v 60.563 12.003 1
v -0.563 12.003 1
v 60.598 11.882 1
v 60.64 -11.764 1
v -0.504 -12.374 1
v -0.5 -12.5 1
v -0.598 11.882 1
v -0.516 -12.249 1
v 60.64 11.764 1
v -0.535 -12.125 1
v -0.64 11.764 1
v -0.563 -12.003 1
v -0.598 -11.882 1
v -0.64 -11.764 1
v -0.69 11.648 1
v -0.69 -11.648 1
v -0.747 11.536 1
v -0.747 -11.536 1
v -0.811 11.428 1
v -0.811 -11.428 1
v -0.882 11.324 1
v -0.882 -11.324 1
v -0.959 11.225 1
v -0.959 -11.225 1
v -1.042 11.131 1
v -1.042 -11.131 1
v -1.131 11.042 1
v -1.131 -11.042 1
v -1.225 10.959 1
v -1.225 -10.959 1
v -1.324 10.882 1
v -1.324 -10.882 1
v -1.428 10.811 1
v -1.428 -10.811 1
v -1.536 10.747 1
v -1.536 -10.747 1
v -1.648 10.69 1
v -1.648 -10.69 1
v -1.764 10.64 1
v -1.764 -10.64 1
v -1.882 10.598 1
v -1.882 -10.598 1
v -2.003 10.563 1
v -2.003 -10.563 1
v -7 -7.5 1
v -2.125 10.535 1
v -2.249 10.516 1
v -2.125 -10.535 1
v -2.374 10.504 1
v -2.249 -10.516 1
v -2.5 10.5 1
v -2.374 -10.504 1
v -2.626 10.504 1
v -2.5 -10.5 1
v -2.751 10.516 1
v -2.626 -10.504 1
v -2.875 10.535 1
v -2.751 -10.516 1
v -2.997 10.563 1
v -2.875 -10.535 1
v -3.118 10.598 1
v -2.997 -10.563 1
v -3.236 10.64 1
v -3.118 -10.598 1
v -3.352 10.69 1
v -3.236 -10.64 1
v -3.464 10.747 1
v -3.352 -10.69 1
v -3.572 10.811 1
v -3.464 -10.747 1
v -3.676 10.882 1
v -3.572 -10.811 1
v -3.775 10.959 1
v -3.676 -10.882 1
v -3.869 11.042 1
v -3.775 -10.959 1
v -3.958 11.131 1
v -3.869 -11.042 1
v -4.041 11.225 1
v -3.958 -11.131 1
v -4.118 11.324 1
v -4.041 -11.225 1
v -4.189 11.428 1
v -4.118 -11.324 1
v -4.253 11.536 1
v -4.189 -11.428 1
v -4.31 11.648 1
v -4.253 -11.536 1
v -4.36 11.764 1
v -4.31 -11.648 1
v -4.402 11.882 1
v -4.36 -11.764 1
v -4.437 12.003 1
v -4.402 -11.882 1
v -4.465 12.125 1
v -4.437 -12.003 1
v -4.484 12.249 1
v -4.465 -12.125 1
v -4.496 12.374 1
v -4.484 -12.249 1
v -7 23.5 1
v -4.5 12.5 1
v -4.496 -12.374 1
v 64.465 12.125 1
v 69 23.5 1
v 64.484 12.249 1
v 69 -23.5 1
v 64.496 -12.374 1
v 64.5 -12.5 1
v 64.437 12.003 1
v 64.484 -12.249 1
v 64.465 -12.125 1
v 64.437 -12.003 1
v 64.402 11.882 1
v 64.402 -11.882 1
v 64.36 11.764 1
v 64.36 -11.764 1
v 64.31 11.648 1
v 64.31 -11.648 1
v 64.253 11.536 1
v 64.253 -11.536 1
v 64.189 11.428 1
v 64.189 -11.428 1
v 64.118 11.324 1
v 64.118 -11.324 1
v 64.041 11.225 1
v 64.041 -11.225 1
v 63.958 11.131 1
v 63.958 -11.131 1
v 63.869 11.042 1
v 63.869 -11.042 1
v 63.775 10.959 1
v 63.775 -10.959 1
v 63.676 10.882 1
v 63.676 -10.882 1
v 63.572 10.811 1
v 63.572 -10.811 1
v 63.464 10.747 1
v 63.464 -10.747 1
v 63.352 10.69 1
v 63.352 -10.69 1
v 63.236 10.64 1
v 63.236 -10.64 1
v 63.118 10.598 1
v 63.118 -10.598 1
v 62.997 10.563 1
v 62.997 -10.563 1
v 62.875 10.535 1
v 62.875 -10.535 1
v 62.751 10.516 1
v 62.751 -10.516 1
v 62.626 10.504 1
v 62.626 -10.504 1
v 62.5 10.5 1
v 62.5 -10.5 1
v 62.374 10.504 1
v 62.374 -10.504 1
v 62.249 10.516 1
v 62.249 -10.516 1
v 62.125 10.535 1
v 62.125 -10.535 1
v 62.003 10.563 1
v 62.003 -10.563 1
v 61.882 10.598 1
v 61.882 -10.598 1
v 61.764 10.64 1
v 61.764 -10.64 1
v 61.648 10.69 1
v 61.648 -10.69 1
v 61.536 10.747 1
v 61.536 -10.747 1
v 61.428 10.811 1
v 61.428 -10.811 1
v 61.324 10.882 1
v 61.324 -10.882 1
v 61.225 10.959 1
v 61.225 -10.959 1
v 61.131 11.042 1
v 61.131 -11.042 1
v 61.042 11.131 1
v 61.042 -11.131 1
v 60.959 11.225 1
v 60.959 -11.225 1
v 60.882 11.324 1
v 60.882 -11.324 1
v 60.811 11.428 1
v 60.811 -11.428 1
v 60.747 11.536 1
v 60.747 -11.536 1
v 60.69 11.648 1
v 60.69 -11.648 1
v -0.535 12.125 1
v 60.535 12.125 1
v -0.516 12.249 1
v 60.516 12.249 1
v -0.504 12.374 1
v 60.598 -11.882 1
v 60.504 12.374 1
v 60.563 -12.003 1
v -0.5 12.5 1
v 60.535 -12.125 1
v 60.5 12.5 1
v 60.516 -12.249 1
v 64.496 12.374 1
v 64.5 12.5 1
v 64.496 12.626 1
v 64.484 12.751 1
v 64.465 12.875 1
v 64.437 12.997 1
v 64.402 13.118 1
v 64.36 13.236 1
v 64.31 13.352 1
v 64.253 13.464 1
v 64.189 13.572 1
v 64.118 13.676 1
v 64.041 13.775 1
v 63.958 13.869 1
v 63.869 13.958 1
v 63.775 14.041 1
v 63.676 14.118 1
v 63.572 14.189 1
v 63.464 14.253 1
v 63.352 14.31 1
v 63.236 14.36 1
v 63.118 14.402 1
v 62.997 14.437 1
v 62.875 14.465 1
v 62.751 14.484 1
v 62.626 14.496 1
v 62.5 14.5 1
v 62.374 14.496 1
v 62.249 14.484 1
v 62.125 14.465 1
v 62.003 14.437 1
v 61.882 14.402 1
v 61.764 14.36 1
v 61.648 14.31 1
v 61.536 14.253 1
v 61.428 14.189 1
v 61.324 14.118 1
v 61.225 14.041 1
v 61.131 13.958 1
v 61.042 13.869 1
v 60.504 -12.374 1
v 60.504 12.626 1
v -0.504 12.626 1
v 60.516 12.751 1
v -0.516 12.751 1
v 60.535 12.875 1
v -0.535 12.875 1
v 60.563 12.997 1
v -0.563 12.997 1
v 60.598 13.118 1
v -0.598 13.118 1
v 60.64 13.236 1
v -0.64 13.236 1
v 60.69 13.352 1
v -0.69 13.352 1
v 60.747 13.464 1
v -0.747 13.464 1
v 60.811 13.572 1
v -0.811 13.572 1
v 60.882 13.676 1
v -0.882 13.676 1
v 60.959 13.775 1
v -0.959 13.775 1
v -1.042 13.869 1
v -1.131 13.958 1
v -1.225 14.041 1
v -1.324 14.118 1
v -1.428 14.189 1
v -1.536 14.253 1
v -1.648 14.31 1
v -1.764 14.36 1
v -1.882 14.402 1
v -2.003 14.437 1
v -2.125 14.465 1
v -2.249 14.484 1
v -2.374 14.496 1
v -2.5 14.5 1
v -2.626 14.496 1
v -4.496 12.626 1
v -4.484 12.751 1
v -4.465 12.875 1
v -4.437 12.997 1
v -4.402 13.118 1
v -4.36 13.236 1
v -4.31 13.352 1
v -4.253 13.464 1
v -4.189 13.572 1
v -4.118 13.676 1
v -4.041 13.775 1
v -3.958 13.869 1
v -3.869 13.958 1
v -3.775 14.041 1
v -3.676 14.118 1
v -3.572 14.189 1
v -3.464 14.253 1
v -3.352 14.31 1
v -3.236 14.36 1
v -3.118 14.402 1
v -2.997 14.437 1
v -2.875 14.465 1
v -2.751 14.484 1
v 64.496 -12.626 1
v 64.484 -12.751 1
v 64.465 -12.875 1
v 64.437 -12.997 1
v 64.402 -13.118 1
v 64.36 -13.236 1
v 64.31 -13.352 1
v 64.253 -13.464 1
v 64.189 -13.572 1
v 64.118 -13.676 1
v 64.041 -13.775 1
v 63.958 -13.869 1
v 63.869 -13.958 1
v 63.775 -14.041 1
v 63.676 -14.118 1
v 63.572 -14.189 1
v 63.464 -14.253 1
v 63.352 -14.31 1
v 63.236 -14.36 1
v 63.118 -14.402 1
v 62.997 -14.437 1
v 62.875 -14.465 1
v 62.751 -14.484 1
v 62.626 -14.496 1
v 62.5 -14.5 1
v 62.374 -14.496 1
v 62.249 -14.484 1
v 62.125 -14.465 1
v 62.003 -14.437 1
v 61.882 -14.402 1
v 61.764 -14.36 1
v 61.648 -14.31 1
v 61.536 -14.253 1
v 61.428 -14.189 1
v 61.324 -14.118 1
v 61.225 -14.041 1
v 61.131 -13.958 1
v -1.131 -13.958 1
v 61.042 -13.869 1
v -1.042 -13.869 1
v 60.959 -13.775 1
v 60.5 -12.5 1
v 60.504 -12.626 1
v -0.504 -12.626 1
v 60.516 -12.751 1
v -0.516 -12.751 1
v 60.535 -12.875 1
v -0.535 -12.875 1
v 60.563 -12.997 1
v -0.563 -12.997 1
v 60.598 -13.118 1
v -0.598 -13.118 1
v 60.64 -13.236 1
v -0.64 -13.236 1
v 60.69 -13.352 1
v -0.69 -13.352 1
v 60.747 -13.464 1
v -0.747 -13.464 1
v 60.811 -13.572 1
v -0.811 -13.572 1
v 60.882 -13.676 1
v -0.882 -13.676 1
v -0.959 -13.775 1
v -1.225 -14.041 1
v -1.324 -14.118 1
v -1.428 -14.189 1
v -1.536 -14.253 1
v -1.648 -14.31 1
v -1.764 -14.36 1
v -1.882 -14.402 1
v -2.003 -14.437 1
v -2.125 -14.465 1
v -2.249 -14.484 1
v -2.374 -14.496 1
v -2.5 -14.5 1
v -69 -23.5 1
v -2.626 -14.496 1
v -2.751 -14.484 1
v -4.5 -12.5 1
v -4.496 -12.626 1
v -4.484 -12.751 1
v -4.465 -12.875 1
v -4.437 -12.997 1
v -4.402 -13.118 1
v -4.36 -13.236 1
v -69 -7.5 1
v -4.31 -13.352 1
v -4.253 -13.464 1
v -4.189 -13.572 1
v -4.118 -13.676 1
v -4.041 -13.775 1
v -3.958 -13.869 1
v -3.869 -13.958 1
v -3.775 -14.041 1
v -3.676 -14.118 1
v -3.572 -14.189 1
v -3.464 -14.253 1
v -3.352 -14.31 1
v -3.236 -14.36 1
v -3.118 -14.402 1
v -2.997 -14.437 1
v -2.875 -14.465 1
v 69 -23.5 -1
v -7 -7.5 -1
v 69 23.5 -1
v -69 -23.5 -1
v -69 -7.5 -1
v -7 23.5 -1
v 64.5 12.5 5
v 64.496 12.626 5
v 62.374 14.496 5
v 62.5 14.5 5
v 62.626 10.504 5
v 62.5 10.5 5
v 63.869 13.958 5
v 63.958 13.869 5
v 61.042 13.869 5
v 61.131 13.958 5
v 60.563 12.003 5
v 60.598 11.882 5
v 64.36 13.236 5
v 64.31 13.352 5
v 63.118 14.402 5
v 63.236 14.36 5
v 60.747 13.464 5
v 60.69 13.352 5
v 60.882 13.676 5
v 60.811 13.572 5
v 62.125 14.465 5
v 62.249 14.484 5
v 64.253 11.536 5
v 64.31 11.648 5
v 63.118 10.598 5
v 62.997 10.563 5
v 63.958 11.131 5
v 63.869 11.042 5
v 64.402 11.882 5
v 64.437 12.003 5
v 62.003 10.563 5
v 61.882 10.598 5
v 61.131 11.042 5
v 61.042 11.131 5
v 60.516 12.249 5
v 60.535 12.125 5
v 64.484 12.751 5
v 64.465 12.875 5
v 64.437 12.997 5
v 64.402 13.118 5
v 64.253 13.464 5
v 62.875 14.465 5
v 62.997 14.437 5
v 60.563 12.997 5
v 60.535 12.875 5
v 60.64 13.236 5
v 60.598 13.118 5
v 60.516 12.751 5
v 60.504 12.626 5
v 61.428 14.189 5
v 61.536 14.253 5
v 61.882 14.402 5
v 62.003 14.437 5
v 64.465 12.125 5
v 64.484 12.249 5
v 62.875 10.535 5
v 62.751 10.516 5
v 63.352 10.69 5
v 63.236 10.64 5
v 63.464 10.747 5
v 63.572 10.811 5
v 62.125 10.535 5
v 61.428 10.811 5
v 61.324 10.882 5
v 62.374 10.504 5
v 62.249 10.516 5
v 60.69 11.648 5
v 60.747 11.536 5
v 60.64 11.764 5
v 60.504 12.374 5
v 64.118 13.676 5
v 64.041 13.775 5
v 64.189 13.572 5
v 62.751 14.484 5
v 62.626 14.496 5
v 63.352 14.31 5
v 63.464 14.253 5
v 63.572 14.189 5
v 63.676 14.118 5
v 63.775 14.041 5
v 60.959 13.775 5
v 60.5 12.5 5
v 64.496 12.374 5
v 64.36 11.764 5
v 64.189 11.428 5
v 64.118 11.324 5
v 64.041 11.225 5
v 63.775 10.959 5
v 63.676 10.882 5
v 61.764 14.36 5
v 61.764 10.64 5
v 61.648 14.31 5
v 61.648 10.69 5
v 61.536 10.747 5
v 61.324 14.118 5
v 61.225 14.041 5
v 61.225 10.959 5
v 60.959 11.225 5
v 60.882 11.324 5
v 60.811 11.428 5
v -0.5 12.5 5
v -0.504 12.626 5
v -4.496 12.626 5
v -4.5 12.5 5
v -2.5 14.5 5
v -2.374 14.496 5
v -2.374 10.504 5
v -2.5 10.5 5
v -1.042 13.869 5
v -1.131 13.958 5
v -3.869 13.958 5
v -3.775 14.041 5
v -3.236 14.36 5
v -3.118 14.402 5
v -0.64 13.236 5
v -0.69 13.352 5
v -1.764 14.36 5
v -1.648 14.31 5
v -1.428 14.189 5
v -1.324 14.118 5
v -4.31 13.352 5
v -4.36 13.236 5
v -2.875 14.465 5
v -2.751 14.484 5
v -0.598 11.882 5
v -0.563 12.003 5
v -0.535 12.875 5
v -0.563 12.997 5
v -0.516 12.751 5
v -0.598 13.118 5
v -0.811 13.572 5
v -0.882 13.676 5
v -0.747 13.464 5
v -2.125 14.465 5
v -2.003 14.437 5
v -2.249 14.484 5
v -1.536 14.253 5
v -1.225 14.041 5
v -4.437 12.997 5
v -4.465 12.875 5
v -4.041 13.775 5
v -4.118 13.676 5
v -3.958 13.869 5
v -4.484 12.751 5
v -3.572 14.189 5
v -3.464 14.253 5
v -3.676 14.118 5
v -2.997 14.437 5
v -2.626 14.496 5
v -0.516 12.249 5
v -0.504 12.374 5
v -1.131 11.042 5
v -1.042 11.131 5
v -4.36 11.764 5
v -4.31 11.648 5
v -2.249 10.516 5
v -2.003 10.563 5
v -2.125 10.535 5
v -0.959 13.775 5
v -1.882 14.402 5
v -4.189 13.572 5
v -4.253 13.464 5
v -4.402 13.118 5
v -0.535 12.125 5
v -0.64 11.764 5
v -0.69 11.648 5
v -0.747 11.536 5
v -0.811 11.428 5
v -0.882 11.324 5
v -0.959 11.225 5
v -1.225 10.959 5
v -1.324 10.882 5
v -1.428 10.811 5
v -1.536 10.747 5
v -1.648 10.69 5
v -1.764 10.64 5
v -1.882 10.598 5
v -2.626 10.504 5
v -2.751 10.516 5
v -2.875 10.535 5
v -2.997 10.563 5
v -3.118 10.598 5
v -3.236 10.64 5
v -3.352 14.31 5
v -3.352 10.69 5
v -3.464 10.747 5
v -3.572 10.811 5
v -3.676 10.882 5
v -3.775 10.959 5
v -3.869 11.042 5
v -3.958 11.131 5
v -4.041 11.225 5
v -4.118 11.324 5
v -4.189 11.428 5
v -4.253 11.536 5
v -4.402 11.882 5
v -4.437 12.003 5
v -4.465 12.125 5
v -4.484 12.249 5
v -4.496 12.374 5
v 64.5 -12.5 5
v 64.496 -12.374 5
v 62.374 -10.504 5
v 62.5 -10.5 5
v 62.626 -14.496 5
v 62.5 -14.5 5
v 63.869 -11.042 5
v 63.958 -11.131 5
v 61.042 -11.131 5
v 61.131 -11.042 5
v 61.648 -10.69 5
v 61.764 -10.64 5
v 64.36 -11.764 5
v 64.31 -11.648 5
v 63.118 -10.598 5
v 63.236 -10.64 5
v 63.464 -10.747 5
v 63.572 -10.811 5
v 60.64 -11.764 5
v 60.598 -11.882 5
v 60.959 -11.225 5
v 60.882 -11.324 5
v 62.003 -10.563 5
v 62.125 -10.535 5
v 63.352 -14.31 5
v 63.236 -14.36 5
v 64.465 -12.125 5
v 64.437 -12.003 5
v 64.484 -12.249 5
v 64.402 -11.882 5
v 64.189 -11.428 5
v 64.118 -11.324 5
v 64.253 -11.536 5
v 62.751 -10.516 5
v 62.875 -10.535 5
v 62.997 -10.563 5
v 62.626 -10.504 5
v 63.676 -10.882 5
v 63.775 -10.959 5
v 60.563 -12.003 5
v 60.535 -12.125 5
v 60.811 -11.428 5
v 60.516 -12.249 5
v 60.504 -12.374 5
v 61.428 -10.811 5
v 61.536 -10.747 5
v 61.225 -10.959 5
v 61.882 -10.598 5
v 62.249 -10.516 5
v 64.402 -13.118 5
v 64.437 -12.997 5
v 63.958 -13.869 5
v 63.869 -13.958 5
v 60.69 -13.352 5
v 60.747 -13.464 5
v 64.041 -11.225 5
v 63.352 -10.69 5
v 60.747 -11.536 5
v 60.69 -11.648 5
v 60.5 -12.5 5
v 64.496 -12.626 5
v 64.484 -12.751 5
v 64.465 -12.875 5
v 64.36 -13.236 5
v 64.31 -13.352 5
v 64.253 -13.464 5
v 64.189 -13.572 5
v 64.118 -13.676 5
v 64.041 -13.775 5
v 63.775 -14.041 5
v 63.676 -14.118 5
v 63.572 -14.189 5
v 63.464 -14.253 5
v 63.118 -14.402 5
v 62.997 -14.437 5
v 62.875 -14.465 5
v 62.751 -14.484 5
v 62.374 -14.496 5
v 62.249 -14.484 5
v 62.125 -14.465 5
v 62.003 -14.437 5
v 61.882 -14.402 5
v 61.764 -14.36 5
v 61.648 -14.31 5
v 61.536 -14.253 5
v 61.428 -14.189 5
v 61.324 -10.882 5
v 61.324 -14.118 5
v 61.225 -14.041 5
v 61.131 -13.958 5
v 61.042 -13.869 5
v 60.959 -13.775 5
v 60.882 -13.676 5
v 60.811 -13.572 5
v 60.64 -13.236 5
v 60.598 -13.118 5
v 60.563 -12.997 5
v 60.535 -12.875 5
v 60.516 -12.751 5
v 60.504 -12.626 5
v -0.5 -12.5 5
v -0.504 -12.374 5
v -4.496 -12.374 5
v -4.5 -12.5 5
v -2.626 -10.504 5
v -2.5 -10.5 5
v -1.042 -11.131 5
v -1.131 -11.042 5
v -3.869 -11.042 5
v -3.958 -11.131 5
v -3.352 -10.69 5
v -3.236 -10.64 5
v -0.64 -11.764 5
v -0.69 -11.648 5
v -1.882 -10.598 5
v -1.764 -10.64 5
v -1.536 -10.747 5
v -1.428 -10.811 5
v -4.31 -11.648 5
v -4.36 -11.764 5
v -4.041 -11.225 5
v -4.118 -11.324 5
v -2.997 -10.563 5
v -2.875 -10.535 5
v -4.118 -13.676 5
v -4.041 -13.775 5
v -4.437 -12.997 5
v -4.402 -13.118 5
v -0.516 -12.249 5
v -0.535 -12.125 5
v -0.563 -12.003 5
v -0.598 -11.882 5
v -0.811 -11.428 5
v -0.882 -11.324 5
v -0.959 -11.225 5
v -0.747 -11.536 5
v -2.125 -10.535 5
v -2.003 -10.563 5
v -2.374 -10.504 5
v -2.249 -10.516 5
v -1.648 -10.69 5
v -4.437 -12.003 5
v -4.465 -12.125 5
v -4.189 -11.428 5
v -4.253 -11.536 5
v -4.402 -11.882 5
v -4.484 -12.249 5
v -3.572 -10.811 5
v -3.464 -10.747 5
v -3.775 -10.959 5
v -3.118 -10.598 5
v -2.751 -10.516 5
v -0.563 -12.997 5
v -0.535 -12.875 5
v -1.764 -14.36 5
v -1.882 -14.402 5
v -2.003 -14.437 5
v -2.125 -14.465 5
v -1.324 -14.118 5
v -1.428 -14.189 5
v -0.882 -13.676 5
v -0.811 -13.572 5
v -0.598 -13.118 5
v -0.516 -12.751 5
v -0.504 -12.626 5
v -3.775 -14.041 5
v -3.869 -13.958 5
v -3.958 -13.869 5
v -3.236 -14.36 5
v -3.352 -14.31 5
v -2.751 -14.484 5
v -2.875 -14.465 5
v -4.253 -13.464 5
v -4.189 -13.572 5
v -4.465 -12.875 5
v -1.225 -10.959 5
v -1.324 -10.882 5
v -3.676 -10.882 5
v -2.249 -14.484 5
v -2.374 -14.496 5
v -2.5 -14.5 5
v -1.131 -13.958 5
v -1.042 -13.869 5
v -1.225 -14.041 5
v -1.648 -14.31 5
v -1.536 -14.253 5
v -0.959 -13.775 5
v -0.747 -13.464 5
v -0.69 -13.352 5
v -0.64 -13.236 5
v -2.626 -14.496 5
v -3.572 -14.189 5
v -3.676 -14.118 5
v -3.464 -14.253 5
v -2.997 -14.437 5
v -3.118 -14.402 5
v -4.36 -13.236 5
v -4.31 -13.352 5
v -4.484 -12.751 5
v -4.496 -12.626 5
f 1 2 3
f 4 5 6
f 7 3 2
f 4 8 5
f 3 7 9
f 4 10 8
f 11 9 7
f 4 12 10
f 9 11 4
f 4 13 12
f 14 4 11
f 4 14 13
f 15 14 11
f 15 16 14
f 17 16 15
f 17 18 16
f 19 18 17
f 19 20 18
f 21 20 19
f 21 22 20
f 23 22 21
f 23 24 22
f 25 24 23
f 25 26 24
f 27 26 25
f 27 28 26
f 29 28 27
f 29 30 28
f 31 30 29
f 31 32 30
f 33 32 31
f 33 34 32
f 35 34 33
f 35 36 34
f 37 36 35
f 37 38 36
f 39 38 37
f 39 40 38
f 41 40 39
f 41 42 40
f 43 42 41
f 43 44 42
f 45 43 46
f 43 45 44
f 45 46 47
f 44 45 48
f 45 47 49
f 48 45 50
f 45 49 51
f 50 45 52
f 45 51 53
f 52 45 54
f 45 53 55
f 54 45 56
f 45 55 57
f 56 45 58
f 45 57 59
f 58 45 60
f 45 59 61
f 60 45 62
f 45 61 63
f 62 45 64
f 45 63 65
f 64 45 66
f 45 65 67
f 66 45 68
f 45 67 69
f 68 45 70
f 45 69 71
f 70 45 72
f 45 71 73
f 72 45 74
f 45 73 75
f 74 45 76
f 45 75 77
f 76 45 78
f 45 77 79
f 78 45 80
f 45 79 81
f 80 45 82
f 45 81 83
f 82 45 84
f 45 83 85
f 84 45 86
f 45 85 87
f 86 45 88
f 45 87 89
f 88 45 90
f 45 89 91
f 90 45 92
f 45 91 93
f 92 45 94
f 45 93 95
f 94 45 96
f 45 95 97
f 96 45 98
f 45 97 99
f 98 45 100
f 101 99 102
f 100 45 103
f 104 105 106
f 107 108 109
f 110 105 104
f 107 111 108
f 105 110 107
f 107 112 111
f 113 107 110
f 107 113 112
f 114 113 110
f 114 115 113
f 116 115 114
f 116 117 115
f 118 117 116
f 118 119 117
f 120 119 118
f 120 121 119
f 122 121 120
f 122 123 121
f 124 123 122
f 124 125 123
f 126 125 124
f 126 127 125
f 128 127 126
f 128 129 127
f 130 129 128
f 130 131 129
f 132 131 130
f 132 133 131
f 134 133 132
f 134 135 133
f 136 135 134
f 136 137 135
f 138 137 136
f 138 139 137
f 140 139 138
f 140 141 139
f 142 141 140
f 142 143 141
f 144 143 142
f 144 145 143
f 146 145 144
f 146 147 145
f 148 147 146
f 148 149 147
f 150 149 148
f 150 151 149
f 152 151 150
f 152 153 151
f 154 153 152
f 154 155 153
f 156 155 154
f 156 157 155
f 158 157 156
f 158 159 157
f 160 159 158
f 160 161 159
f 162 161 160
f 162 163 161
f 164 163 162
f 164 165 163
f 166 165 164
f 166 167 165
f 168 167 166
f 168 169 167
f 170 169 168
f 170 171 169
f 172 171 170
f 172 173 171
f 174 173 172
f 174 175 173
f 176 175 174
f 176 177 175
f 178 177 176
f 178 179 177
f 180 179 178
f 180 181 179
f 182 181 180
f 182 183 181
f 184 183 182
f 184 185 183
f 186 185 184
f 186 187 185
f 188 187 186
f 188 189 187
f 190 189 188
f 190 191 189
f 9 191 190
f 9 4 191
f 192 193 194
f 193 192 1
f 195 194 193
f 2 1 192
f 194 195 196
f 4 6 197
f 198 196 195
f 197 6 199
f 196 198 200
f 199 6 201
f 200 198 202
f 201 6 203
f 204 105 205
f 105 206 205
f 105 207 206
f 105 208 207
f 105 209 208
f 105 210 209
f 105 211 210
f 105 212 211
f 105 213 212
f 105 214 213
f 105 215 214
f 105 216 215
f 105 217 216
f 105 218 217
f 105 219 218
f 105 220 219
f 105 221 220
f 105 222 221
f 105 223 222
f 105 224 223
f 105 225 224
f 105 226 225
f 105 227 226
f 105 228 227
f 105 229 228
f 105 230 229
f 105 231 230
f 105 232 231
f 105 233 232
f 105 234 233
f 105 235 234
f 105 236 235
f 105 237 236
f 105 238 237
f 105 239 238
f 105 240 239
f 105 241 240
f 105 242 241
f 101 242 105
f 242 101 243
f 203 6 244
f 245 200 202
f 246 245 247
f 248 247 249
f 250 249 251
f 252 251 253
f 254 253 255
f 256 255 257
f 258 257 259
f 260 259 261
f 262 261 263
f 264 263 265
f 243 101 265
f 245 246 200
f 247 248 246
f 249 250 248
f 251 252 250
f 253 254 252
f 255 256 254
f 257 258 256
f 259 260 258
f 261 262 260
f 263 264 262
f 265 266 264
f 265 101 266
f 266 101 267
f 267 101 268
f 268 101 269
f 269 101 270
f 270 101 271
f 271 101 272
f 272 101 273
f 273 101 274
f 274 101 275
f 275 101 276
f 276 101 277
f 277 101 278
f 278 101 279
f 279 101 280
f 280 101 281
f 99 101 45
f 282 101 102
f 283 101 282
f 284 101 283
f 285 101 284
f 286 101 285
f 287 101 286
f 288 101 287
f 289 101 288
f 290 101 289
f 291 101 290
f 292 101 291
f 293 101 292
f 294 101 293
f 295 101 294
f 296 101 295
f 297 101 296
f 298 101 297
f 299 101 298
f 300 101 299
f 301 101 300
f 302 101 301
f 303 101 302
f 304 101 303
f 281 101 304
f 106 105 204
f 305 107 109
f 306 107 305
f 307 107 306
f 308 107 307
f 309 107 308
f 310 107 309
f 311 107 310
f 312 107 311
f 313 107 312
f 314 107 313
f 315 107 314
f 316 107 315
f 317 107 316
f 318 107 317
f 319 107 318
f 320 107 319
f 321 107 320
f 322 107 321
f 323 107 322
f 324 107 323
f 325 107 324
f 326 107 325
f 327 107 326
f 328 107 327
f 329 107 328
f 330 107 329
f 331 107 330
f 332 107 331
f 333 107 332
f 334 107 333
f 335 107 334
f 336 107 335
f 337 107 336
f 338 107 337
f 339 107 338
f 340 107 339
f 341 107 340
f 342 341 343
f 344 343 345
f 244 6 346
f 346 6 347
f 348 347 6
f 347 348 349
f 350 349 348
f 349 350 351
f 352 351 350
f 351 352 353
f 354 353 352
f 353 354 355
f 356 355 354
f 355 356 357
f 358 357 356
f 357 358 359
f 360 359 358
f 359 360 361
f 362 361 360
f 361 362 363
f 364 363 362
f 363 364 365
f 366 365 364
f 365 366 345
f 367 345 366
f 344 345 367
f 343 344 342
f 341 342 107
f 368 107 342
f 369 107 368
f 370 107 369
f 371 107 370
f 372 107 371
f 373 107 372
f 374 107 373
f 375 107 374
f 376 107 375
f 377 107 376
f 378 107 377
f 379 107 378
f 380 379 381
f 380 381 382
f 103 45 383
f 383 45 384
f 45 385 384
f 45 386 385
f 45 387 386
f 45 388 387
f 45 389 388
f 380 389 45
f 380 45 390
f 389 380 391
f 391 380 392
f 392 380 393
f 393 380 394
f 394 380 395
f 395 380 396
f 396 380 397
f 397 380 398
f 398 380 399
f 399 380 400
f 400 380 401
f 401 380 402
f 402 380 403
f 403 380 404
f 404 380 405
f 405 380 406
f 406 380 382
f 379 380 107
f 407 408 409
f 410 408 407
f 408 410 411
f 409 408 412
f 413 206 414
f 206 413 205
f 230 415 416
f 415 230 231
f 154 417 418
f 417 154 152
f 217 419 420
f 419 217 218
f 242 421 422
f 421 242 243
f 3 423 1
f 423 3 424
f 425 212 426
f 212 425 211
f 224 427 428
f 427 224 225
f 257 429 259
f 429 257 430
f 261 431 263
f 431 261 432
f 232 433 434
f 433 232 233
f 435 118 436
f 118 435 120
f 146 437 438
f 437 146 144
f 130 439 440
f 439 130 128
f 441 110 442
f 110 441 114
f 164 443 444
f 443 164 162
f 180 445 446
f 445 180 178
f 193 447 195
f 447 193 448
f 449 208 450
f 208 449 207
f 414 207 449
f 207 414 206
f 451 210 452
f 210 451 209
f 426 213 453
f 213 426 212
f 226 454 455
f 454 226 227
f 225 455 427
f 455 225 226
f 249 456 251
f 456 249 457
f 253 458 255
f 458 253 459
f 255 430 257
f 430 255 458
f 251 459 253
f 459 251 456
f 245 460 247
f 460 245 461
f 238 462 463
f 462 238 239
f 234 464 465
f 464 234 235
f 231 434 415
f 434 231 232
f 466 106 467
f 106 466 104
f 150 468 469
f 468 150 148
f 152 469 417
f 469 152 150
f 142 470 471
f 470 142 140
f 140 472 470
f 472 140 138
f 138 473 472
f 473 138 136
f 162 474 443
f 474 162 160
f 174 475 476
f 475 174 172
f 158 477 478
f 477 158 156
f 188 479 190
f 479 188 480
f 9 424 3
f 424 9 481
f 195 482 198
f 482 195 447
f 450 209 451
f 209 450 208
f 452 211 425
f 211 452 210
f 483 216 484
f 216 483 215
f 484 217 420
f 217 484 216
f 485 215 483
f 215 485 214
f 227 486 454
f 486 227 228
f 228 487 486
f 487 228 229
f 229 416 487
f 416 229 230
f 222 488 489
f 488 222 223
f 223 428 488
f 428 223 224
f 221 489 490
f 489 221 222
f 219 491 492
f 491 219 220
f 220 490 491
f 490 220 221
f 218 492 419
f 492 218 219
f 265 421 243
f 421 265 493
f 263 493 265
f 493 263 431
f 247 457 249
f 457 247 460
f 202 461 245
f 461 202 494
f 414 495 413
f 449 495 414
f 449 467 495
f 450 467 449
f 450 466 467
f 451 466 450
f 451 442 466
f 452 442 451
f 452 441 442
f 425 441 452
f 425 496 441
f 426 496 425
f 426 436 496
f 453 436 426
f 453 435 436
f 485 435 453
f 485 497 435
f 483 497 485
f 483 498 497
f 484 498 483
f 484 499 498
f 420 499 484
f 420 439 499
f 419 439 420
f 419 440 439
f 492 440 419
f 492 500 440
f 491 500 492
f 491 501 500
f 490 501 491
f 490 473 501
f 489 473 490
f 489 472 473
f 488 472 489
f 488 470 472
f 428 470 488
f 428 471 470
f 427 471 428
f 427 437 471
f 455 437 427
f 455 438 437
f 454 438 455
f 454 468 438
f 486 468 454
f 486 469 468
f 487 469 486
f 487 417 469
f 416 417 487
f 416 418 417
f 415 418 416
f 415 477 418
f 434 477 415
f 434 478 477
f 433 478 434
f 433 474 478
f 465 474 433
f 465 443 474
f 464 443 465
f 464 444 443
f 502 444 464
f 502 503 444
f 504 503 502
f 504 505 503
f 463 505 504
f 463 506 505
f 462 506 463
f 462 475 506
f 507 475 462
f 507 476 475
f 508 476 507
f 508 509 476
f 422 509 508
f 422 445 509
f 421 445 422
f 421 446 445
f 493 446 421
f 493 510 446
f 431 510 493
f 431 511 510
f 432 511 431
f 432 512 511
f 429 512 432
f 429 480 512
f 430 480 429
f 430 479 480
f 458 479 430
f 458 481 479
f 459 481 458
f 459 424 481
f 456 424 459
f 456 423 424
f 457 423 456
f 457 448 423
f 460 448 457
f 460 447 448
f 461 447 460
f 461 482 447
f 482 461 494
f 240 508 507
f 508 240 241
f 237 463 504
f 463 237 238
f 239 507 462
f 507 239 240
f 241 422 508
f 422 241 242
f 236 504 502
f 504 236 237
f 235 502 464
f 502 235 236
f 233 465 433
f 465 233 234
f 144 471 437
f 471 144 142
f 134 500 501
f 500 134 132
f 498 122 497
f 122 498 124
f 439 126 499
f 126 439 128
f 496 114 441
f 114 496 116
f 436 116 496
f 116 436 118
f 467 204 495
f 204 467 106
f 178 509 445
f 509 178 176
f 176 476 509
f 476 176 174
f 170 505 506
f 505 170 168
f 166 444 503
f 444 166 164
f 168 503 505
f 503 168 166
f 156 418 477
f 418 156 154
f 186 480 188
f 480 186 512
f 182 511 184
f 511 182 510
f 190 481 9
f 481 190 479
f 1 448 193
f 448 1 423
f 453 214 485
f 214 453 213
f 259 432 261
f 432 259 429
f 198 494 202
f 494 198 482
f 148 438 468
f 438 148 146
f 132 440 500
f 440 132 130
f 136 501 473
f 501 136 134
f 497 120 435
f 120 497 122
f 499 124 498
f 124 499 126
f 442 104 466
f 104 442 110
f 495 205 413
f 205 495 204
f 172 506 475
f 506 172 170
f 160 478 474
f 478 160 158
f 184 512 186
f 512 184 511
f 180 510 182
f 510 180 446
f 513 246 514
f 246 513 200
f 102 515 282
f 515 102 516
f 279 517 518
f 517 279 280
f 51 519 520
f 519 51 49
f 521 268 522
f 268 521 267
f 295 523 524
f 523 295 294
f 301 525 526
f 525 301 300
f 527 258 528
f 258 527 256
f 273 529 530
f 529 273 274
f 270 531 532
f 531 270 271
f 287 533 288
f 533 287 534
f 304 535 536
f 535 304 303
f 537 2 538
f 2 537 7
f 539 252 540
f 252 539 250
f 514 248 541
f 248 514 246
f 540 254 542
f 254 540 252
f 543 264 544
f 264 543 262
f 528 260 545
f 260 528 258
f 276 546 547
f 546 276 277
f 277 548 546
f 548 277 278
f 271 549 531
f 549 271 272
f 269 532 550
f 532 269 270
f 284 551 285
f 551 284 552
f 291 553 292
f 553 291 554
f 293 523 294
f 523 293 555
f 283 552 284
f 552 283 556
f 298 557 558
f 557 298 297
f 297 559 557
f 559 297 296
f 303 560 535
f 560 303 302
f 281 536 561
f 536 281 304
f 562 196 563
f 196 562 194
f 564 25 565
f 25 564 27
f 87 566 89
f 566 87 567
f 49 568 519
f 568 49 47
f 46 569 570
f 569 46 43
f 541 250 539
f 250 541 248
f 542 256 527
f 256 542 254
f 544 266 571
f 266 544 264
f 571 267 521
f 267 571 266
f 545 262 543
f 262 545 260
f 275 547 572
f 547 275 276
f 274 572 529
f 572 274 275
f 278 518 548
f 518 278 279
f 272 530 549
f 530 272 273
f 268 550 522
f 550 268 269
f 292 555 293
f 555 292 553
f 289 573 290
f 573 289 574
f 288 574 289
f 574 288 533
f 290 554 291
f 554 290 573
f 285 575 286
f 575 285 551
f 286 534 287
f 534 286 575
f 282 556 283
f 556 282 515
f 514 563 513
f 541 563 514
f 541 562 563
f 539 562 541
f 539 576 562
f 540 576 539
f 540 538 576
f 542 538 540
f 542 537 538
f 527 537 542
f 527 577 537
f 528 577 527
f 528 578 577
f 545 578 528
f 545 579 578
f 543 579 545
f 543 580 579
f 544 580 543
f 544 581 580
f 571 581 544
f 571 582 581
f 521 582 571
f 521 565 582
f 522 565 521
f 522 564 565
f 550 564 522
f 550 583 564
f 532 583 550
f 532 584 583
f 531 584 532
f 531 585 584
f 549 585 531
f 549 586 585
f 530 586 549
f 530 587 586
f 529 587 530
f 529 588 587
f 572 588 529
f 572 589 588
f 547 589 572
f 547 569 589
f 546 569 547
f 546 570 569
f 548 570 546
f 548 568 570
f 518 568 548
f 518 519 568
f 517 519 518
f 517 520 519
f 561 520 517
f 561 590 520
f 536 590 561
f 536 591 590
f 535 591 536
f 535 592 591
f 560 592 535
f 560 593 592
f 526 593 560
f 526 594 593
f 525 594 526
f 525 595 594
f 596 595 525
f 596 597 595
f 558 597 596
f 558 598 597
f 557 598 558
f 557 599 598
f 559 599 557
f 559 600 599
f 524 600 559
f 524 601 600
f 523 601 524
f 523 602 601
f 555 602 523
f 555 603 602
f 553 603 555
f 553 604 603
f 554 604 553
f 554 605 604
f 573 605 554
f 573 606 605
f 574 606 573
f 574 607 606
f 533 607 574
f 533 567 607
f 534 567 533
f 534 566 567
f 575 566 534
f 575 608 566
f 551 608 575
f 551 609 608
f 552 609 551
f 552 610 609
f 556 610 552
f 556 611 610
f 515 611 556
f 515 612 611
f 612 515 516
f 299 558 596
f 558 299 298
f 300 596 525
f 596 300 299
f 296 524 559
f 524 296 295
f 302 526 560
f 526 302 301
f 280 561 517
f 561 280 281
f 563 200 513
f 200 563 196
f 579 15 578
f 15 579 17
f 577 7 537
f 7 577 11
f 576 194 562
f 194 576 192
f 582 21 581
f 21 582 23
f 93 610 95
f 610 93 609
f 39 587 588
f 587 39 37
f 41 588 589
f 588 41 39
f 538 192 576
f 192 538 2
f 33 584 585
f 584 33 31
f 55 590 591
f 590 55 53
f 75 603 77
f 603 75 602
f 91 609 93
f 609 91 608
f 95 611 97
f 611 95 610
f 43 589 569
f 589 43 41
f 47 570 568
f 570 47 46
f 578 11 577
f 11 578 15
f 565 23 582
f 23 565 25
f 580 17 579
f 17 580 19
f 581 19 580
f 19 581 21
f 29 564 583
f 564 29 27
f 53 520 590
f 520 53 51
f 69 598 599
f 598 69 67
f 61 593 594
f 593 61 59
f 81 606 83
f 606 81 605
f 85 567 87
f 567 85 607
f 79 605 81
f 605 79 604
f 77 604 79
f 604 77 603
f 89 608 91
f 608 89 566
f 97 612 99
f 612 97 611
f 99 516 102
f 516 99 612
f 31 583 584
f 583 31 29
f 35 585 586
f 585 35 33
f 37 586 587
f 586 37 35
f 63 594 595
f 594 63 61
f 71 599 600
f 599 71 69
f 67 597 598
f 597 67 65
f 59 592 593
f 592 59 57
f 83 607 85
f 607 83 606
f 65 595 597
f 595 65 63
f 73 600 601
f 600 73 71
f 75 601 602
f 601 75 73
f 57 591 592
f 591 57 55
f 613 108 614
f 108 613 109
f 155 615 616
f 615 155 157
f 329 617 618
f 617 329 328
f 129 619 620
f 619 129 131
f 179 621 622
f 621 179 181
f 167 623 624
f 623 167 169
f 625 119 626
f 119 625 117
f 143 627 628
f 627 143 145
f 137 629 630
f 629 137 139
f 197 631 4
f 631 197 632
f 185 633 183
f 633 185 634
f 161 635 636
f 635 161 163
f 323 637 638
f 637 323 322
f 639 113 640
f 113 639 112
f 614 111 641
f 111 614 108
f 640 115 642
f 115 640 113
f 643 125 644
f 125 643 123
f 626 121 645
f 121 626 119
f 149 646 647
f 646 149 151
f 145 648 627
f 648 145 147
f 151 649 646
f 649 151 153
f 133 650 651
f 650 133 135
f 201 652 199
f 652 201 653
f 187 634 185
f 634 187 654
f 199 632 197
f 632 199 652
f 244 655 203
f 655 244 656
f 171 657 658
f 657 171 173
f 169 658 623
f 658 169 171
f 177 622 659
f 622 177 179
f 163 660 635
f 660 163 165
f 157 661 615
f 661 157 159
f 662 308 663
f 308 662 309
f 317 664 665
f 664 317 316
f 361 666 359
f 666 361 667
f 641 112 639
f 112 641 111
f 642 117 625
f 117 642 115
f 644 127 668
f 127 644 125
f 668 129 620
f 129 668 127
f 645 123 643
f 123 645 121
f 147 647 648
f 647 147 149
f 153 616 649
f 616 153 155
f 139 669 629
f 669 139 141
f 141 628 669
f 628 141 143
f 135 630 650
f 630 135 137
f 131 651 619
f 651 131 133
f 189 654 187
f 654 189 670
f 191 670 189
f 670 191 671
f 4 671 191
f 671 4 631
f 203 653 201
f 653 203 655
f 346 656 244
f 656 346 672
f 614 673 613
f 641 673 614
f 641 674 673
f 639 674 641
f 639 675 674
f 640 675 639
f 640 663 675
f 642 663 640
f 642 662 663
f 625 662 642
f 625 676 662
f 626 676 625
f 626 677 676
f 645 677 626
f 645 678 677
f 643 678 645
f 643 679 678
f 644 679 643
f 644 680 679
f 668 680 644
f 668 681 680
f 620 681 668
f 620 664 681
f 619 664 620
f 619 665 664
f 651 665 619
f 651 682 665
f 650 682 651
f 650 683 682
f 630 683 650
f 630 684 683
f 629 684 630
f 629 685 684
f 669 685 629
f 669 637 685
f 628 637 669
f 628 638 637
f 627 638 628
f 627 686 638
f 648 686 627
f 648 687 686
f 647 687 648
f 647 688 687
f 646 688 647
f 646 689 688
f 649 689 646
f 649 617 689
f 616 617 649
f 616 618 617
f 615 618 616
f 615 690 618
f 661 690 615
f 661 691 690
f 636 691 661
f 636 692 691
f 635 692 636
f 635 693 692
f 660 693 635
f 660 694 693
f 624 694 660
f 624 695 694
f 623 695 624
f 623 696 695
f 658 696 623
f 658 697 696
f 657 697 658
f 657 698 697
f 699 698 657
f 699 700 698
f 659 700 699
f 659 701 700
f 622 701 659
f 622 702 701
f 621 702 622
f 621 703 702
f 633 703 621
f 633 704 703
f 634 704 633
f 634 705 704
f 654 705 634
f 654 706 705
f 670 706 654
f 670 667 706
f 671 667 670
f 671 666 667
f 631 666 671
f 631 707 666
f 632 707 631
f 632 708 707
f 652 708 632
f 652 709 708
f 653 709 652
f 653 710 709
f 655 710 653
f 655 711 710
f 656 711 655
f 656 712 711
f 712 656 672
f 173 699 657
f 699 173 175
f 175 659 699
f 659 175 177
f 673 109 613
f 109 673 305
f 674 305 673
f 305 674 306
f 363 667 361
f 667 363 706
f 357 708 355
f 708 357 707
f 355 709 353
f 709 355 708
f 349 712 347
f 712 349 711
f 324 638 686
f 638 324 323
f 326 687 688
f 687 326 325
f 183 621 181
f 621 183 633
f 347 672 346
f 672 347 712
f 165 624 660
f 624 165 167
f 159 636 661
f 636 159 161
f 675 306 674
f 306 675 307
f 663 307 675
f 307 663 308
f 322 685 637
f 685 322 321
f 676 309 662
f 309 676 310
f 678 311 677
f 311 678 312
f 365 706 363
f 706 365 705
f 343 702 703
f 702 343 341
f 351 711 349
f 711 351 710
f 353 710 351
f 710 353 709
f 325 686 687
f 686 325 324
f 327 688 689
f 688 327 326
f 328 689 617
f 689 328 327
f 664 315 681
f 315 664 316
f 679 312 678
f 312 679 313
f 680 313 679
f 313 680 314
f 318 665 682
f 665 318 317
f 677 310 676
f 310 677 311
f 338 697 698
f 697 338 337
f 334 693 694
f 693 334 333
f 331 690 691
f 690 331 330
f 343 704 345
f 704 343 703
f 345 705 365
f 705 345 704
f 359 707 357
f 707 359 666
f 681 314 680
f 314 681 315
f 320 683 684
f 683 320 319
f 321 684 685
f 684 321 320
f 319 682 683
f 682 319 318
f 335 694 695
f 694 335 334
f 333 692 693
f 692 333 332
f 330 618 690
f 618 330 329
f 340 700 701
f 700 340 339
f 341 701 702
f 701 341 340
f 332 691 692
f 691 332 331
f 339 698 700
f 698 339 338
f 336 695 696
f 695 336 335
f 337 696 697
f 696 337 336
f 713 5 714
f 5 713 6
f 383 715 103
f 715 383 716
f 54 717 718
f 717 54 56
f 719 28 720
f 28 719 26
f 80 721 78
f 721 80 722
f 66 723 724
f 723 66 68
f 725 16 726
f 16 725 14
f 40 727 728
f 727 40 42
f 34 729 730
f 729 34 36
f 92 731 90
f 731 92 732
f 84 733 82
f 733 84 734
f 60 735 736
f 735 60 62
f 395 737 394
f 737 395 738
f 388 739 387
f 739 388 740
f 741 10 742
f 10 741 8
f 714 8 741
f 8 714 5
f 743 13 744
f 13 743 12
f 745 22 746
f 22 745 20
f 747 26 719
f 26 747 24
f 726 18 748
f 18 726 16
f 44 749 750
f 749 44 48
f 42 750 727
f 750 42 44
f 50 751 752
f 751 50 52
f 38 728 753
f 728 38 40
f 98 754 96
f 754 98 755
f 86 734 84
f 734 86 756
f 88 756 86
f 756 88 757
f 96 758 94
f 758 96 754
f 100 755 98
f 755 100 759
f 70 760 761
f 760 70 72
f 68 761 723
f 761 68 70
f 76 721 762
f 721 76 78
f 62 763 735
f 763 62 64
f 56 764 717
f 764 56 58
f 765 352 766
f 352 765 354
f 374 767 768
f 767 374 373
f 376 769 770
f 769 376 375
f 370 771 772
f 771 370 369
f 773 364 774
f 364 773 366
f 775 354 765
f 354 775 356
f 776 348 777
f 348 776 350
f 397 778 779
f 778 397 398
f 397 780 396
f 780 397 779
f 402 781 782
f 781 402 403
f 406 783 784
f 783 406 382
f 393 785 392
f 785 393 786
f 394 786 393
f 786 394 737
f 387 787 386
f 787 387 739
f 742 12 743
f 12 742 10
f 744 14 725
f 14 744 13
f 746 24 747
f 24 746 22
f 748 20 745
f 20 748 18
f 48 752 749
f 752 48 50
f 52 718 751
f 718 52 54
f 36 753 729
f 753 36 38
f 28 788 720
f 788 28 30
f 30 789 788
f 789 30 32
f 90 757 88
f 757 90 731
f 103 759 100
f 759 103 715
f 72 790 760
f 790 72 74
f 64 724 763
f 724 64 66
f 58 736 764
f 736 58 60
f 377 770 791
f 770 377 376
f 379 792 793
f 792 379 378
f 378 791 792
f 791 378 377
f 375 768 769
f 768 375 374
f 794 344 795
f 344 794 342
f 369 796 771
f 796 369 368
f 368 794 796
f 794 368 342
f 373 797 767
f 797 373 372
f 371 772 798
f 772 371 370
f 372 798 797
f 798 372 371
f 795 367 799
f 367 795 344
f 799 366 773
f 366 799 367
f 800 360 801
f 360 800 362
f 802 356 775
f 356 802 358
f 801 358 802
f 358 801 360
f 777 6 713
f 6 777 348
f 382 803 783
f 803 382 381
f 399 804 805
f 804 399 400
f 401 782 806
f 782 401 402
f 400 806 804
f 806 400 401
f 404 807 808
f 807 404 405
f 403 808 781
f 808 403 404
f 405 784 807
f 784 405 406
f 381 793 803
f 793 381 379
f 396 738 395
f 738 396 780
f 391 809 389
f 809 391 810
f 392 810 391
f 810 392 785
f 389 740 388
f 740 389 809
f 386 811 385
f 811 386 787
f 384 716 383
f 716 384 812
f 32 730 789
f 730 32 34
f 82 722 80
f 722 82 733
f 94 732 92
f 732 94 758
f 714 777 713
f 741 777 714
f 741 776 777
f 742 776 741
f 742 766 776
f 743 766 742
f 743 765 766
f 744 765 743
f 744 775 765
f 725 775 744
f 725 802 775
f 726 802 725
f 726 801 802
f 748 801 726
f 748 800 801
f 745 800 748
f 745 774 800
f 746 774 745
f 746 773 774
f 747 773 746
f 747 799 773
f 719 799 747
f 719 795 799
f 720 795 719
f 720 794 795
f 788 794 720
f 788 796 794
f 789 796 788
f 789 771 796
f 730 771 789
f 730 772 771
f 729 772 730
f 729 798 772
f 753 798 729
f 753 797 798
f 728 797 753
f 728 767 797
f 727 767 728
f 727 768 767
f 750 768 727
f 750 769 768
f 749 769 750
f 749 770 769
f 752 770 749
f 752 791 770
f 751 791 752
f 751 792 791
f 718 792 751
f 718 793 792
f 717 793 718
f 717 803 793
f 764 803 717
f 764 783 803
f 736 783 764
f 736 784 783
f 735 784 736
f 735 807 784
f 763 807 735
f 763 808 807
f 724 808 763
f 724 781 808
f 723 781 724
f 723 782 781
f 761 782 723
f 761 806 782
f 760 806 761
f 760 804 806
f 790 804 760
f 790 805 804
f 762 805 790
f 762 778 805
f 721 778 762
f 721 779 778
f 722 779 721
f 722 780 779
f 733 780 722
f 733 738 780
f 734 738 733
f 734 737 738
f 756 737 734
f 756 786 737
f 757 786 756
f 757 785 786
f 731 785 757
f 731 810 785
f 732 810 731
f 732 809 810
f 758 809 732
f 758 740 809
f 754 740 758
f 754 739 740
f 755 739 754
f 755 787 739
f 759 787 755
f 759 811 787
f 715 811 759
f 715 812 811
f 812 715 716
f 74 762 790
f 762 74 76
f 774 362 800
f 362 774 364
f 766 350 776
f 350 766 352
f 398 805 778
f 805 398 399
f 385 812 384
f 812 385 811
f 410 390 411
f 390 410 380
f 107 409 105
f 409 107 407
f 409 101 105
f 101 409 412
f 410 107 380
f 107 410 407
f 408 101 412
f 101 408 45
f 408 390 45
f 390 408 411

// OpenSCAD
$fn=100;

powerboard();

module powerboard() {
    board();
    translate([30,0,0]) power();
}

module board() {
    difference() {
        cube([138,47,2],center=true);
        translate([-38,8,0]) #cube([62,31,2],center=true);
    }
}

module power() {
    cube([70,30,2], center=true);
    translate([65/2,25/2,5/2]) cylinder(d=4,h=5,center=true);
    translate([-65/2,25/2,5/2]) cylinder(d=4,h=5,center=true);
    translate([65/2,-25/2,5/2]) cylinder(d=4,h=5,center=true);
    translate([-65/2,-25/2,5/2]) cylinder(d=4,h=5,center=true); 
}
